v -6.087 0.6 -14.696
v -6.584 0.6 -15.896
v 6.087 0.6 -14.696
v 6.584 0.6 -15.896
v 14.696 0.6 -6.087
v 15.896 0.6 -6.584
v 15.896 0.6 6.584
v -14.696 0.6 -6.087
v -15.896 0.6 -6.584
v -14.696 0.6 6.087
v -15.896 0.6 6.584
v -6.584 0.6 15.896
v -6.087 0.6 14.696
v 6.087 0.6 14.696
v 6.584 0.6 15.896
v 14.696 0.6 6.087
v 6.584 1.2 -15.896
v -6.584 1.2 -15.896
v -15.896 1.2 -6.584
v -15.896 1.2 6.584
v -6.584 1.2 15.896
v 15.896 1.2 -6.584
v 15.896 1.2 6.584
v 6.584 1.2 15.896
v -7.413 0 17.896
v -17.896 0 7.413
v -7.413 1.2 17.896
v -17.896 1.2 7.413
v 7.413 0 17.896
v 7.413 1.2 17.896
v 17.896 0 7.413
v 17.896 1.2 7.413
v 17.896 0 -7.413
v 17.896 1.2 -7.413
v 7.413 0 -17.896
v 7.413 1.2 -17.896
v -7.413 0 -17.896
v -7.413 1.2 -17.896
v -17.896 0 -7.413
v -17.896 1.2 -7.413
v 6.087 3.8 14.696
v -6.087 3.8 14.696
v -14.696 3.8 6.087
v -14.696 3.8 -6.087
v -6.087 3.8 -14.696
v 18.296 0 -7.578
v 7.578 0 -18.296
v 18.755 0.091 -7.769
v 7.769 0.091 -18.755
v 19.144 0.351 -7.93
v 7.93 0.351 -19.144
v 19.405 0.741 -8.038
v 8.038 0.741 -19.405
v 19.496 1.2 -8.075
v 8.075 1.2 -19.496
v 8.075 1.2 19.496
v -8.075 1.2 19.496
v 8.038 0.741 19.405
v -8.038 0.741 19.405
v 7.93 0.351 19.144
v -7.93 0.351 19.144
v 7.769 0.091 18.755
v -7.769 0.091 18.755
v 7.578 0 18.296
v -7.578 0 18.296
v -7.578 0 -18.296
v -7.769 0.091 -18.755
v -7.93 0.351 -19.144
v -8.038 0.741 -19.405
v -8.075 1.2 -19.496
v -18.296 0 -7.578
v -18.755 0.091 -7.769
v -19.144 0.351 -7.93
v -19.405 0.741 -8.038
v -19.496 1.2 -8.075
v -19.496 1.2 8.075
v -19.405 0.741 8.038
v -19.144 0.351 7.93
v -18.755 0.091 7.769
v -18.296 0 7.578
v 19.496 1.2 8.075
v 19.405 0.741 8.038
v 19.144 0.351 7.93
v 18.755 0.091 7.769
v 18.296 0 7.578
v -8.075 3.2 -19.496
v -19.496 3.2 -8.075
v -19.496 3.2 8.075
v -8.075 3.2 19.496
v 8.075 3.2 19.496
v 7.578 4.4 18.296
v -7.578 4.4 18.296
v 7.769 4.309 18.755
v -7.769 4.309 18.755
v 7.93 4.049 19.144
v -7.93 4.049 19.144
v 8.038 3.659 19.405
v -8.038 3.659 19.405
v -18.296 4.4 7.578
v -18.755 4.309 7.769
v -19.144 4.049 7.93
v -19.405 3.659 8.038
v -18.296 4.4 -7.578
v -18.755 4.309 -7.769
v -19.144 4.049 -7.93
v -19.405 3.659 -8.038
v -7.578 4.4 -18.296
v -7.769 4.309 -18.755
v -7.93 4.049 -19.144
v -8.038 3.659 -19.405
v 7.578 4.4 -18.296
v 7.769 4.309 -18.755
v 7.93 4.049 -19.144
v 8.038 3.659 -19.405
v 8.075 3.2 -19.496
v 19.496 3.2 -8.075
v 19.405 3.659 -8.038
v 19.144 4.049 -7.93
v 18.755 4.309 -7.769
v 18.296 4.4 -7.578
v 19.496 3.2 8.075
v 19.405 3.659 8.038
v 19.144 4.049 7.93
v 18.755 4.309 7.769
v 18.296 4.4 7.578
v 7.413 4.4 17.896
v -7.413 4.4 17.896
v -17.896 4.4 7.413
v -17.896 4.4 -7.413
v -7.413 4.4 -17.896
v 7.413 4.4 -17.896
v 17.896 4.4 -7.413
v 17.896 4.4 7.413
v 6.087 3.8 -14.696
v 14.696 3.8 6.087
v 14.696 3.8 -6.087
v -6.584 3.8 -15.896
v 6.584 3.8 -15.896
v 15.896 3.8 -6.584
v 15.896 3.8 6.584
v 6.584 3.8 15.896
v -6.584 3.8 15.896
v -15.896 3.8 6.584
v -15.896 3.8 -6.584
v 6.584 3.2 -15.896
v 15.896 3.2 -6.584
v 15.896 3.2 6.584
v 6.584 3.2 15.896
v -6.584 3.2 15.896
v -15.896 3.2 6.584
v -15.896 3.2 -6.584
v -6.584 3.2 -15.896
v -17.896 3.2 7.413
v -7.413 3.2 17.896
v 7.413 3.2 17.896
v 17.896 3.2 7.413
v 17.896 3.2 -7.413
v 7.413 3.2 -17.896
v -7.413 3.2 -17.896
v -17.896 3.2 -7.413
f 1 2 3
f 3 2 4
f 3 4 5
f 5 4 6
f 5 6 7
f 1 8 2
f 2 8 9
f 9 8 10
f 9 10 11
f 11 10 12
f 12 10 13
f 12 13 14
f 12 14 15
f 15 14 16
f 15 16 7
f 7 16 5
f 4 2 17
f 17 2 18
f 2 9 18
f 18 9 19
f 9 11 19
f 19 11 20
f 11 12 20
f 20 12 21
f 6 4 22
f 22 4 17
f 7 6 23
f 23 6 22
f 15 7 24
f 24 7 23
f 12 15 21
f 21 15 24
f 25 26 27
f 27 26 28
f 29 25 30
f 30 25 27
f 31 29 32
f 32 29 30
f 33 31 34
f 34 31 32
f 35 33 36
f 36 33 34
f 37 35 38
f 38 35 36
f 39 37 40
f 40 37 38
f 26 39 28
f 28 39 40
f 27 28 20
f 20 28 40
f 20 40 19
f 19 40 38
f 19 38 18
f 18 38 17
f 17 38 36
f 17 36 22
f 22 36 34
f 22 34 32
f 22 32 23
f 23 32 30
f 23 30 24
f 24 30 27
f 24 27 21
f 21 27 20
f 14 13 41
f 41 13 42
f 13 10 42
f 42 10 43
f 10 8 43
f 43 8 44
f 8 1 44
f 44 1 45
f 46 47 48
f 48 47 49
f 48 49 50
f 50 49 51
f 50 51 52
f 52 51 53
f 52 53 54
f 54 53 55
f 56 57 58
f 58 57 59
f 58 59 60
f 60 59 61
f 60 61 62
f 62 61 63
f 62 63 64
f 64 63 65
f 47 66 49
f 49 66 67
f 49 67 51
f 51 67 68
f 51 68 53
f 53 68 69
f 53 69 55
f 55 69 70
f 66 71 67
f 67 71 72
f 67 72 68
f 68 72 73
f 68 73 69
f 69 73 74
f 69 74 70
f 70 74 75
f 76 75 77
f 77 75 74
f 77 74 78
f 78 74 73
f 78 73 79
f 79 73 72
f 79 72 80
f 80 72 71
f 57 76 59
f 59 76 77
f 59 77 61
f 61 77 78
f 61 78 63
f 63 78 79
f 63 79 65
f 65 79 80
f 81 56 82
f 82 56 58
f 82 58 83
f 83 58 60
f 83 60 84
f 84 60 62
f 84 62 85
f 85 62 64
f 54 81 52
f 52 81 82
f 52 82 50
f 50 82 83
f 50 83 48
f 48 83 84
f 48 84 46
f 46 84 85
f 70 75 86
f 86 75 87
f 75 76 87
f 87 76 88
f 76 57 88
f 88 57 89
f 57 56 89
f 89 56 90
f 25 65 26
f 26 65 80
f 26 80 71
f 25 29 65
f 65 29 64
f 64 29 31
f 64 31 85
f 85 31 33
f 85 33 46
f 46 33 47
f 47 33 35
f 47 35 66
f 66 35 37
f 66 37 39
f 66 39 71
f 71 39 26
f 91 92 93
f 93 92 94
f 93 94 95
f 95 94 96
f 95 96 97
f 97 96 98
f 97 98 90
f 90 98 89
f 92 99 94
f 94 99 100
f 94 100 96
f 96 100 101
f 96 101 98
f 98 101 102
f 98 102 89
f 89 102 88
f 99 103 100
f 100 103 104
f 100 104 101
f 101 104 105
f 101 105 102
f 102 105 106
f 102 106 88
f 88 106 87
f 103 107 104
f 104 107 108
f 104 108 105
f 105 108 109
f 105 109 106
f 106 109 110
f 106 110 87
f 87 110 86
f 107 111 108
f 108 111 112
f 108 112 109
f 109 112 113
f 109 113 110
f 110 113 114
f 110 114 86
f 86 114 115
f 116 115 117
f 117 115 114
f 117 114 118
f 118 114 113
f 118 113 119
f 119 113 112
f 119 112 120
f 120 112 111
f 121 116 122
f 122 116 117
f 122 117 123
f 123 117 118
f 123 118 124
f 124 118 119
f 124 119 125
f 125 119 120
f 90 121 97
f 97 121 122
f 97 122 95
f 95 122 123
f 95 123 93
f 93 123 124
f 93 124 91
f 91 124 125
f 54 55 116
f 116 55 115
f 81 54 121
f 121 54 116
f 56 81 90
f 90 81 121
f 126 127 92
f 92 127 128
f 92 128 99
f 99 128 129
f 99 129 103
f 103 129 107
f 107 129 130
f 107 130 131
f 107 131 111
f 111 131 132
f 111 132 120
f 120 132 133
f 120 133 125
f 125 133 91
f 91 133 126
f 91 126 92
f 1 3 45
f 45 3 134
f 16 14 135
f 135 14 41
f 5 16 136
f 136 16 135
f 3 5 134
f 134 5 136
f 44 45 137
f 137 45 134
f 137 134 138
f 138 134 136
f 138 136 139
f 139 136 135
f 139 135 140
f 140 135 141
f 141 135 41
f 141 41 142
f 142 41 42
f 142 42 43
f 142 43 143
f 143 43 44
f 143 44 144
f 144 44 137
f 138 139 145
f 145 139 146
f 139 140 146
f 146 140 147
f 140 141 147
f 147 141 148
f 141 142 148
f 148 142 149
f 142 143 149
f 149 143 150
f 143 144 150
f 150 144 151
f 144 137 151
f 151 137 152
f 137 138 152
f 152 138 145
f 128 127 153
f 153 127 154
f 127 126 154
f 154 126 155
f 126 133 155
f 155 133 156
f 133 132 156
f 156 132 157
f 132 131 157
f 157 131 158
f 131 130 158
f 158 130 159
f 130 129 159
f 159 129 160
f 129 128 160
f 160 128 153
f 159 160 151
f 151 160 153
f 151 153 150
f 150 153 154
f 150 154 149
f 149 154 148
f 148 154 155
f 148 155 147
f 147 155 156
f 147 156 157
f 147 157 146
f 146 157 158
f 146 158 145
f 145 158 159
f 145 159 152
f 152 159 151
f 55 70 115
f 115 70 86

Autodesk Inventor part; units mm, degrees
ref_plane "YZ Plane" through (0, 0, 0) normal (1, 0, 0) x (0, 1, 0)
ref_plane "XZ Plane" through (0, 0, 0) normal (0, 1, 0) x (-1, 0, 0)
sketch "스케치1" plane through (0, 0, 0) normal (0, 1, 0) x (-1, 0, 0)
  line L0 (-16.2959, 6.75) -> (-6.75, 16.2959)
  line L1 (-6.75, 16.2959) -> (6.75, 16.2959)
  line L2 (6.75, 16.2959) -> (16.2959, 6.75)
  line L3 (16.2959, 6.75) -> (16.2959, -6.75)
  line L4 (16.2959, -6.75) -> (6.75, -16.2959)
  line L5 (6.75, -16.2959) -> (-6.75, -16.2959)
  line L6 (-6.75, -16.2959) -> (-16.2959, -6.75)
  line L7 (-16.2959, -6.75) -> (-16.2959, 6.75)
  line L8 (19.4959, 8.0755) -> (19.4959, -8.0755)
  line L9 (19.4959, -8.0755) -> (8.0755, -19.4959)
  line L10 (8.0755, -19.4959) -> (-8.0755, -19.4959)
  line L11 (-8.0755, -19.4959) -> (-19.4959, -8.0755)
  line L12 (-19.4959, -8.0755) -> (-19.4959, 8.0755)
  line L13 (-19.4959, 8.0755) -> (-8.0755, 19.4959)
  line L14 (-8.0755, 19.4959) -> (8.0755, 19.4959)
  line L15 (8.0755, 19.4959) -> (19.4959, 8.0755)
  point P0 (0, 0)
  point P1 (0, 0)
  point P2 (0, 0)
  dimension "d0" = 13.5
  dimension "d1" = 3.2
extrude "돌출1" add sketch "스케치1" along normal blind 4.4 contours L0 L1 L2 L3 L4 L5 L6 L7 | L8 L9 L10 L11 L12 L13 L14 L15
sketch "스케치14" plane through (0, 4.4, 0) normal (0, 1, 0) x (1, 0, 0)
  line L0 (6.5843, -15.8959) -> (-6.5843, -15.8959)
  line L1 (-6.5843, -15.8959) -> (-15.8959, -6.5843)
  line L2 (-15.8959, -6.5843) -> (-15.8959, 6.5843)
  line L3 (-15.8959, 6.5843) -> (-6.5843, 15.8959)
  line L4 (-6.5843, 15.8959) -> (6.5843, 15.8959)
  line L5 (6.5843, 15.8959) -> (15.8959, 6.5843)
  line L6 (15.8959, 6.5843) -> (15.8959, -6.5843)
  line L7 (15.8959, -6.5843) -> (6.5843, -15.8959)
  line L8 (-7.4127, 17.8959) -> (7.4127, 17.8959)
  line L9 (7.4127, 17.8959) -> (17.8959, 7.4127)
  line L10 (17.8959, 7.4127) -> (17.8959, -7.4127)
  line L11 (17.8959, -7.4127) -> (7.4127, -17.8959)
  line L12 (7.4127, -17.8959) -> (-7.4127, -17.8959)
  line L13 (-7.4127, -17.8959) -> (-17.8959, -7.4127)
  line L14 (-17.8959, -7.4127) -> (-17.8959, 7.4127)
  line L15 (-17.8959, 7.4127) -> (-7.4127, 17.8959)
  line L16 (19.4959, -8.0755) -> (19.4959, 8.0755) projected
  point P0 (0, 0)
  point P1 (0, 0)
  point P2 (0, 0)
  dimension "d138" = 2
  dimension "d139" = 1.6
extrude "돌출16" cut sketch "스케치14" against normal blind 1.2
sketch "스케치15" plane through (0, 4.4, 0) normal (0, 1, 0) x (1, 0, 0)
  line L0 (-15.8959, -6.5843) -> (-6.5843, -15.8959) projected
  line L1 (-6.5843, -15.8959) -> (6.5843, -15.8959) projected
  line L2 (6.5843, -15.8959) -> (15.8959, -6.5843) projected
  line L3 (15.8959, -6.5843) -> (15.8959, 6.5843) projected
  line L4 (15.8959, 6.5843) -> (6.5843, 15.8959) projected
  line L5 (6.5843, 15.8959) -> (-6.5843, 15.8959) projected
  line L6 (-6.5843, 15.8959) -> (-15.8959, 6.5843) projected
  line L7 (-15.8959, 6.5843) -> (-15.8959, -6.5843) projected
  point P0 (0, 0)
extrude "돌출17" cut sketch "스케치15" against normal blind 0.6
sketch "스케치16" plane through (0, 3.8, 0) normal (0, 1, 0) x (1, 0, 0)
  line L0 (-6.0873, 14.6959) -> (6.0873, 14.6959)
  line L1 (6.0873, 14.6959) -> (14.6959, 6.0873)
  line L2 (14.6959, 6.0873) -> (14.6959, -6.0873)
  line L3 (14.6959, -6.0873) -> (6.0873, -14.6959)
  line L4 (6.0873, -14.6959) -> (-6.0873, -14.6959)
  line L5 (-6.0873, -14.6959) -> (-14.6959, -6.0873)
  line L6 (-14.6959, -6.0873) -> (-14.6959, 6.0873)
  line L7 (-14.6959, 6.0873) -> (-6.0873, 14.6959)
  line L8 (15.8959, 6.5843) -> (15.8959, -6.5843) projected
  point P0 (0, 0)
  point P1 (0, 0)
  dimension "d144" = 1.2
extrude "돌출18" cut sketch "스케치16" against normal up to surface (3.8 mm away)
fillet "모깎기2" radius 1.2 16 edges at (0, 4.4, -19.4959) (-13.7857, 4.4, -13.7857) (13.7857, 4.4, -13.7857) (19.4959, 4.4, 0) (13.7857, 4.4, 13.7857) (0, 4.4, 19.4959) (-13.7857, 4.4, 13.7857) (-19.4959, 4.4, 0) (-19.4959, 0, 0) (-13.7857, 0, 13.7857) (0, 0, 19.4959) (13.7857, 0, 13.7857) (-13.7857, 0, -13.7857) (0, 0, -19.4959) (19.4959, 0, 0) (13.7857, 0, -13.7857)
ref_plane "작업 평면3" through (0, 2.2, 0) normal (0, -1, 0) x (1, 0, 0)
mirror "미러6" about plane through (0, 2.2, 0) normal (0, -1, 0) of "돌출17", "돌출16"
properties part number "OV-PAM_ring_2"
